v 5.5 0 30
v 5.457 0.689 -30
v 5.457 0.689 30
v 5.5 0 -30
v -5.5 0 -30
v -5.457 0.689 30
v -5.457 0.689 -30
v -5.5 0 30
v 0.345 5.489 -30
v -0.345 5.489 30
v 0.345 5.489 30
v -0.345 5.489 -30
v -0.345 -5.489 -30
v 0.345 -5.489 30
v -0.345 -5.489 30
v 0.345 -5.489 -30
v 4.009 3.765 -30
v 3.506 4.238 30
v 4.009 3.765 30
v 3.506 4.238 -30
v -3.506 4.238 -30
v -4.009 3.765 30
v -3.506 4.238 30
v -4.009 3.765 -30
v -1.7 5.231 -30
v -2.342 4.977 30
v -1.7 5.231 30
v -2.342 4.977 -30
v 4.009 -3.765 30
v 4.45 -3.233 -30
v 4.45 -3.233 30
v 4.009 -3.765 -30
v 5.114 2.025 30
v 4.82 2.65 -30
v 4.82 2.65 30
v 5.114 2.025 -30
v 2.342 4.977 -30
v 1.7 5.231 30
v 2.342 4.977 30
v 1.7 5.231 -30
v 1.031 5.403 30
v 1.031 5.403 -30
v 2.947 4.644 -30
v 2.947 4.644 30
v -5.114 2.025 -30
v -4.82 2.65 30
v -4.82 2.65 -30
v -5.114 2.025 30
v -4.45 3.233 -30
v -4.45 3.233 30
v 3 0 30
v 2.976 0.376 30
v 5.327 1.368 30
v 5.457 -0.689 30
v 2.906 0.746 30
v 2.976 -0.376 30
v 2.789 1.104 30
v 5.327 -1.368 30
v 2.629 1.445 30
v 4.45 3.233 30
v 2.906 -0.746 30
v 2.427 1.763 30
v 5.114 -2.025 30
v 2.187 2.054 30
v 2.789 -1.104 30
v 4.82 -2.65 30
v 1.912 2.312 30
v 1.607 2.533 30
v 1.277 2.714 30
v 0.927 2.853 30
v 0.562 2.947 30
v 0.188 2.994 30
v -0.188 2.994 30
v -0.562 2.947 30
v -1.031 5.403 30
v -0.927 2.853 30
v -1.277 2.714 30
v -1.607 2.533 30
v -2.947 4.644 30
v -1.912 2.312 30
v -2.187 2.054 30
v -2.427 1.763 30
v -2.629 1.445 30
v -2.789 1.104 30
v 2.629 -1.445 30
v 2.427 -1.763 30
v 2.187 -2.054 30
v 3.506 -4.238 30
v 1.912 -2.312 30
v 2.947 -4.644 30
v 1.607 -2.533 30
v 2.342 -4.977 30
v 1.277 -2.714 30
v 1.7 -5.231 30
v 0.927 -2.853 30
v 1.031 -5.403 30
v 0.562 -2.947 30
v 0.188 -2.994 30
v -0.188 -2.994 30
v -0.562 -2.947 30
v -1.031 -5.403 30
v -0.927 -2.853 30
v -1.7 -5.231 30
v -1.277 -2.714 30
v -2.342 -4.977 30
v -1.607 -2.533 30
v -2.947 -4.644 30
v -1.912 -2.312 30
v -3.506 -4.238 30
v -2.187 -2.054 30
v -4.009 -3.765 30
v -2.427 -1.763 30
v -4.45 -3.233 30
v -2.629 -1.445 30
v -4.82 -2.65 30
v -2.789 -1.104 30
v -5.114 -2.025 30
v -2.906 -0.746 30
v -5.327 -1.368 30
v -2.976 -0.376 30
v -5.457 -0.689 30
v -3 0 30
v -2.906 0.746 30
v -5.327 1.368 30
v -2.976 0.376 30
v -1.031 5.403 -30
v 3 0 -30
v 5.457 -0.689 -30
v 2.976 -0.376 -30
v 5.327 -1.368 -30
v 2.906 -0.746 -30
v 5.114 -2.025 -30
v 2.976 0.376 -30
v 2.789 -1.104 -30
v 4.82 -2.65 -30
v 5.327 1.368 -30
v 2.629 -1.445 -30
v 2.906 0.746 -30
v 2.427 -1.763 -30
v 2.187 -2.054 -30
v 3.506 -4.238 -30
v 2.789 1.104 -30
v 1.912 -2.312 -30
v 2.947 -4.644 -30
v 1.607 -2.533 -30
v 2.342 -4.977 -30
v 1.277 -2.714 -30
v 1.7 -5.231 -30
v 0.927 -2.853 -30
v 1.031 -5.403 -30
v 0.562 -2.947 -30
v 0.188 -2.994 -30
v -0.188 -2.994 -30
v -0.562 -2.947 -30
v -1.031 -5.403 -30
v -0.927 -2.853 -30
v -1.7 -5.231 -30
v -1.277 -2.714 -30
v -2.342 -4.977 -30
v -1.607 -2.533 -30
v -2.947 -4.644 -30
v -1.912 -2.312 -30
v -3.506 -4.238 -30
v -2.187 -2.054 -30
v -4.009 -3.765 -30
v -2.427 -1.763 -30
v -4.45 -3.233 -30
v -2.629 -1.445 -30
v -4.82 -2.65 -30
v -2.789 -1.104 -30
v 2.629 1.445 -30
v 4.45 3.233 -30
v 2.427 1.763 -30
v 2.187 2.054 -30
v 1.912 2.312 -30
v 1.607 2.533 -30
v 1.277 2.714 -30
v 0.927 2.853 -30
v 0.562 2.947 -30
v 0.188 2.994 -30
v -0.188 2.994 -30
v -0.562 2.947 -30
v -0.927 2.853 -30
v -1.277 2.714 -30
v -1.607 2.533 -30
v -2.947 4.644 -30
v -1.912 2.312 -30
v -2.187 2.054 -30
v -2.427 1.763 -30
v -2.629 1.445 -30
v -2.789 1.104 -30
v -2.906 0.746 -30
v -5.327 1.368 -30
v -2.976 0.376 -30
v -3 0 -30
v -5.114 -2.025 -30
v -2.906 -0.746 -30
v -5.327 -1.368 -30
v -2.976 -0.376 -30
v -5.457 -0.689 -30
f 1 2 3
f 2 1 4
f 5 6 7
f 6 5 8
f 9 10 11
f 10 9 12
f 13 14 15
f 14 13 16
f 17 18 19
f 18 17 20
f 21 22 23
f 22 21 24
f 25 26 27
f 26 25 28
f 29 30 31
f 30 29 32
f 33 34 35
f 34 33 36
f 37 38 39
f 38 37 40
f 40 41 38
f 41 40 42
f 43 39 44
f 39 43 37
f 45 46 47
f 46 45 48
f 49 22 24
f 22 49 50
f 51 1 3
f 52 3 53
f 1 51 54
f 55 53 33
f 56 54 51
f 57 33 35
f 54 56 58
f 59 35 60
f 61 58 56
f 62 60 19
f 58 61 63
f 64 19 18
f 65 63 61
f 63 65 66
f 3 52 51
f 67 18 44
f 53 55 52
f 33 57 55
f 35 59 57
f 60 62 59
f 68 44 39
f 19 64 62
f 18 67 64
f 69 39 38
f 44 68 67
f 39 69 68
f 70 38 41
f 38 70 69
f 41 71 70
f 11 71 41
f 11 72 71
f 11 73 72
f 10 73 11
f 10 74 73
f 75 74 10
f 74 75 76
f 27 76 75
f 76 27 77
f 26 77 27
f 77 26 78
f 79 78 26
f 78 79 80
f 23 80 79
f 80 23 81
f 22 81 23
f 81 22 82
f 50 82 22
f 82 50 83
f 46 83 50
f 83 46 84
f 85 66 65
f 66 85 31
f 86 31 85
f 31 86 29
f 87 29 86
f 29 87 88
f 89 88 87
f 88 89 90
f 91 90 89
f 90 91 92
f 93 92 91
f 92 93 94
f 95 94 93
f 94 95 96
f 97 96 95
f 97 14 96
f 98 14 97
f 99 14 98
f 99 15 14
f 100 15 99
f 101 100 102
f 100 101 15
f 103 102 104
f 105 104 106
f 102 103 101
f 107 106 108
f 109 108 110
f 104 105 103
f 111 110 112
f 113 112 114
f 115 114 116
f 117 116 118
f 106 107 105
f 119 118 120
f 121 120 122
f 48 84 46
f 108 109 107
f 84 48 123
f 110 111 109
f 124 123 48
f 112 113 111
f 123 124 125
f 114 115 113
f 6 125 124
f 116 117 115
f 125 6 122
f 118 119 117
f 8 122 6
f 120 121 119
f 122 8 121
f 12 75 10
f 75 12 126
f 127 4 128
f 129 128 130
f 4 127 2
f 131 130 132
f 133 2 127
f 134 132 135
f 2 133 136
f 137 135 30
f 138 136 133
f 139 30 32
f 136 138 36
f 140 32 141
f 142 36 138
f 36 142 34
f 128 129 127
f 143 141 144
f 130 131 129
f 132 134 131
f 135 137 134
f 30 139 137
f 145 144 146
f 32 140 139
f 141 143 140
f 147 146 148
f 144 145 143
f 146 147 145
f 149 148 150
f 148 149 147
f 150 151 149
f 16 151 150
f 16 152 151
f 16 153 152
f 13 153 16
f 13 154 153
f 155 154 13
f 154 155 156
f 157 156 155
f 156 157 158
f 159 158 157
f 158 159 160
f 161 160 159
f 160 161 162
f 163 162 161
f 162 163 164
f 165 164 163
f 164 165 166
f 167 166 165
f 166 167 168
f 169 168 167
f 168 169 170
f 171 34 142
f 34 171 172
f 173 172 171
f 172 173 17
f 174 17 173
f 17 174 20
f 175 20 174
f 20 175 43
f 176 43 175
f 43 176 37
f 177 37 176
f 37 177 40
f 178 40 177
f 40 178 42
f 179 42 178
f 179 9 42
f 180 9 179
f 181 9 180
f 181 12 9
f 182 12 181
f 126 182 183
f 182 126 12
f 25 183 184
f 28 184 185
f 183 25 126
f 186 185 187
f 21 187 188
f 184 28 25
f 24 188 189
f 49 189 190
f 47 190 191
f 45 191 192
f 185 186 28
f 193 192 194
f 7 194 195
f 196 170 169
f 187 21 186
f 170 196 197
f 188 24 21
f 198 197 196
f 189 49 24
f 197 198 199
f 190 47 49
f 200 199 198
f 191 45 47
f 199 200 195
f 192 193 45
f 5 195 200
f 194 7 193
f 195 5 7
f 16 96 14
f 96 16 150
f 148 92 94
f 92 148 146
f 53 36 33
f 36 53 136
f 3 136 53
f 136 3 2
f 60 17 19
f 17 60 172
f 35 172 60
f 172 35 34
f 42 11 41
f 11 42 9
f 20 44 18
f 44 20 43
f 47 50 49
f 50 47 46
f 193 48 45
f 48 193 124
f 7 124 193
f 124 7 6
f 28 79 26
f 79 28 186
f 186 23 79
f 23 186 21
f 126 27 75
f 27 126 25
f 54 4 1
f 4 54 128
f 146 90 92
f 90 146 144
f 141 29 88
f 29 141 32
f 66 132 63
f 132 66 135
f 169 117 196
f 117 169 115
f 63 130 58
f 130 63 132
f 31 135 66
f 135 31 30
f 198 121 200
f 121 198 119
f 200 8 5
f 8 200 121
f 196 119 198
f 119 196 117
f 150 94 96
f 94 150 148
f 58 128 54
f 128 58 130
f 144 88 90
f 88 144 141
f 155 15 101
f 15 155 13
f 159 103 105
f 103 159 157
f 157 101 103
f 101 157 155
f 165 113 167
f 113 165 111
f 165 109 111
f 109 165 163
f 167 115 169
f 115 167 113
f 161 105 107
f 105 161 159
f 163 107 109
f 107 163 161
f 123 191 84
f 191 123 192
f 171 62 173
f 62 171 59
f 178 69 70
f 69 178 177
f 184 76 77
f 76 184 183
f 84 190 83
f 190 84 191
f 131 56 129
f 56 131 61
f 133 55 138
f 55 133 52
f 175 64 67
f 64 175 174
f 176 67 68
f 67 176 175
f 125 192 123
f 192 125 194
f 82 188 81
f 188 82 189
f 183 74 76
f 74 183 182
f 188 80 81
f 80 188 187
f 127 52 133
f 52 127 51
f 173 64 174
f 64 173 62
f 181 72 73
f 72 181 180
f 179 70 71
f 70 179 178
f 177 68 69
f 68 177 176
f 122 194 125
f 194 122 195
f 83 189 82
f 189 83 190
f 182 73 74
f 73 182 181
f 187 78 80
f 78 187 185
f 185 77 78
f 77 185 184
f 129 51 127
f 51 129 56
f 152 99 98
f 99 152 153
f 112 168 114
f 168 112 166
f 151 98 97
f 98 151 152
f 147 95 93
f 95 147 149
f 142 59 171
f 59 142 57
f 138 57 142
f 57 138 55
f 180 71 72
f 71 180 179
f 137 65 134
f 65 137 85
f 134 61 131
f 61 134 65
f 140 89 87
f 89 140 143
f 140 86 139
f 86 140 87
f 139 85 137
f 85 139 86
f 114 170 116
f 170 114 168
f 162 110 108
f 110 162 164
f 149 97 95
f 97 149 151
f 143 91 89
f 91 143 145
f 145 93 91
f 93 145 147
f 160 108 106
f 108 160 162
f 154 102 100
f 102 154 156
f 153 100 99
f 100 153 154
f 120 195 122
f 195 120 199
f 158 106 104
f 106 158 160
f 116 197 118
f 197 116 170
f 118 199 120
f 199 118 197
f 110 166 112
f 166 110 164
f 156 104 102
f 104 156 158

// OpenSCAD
$fn = 50;


difference() {
	union() {
		translate(v = [0, 0, -30.0000000000]) {
			cylinder(h = 60, r = 5.5000000000);
		}
	}
	union() {
		translate(v = [0, 0, -100.0000000000]) {
			cylinder(h = 200, r = 3.0000000000);
		}
	}
}
